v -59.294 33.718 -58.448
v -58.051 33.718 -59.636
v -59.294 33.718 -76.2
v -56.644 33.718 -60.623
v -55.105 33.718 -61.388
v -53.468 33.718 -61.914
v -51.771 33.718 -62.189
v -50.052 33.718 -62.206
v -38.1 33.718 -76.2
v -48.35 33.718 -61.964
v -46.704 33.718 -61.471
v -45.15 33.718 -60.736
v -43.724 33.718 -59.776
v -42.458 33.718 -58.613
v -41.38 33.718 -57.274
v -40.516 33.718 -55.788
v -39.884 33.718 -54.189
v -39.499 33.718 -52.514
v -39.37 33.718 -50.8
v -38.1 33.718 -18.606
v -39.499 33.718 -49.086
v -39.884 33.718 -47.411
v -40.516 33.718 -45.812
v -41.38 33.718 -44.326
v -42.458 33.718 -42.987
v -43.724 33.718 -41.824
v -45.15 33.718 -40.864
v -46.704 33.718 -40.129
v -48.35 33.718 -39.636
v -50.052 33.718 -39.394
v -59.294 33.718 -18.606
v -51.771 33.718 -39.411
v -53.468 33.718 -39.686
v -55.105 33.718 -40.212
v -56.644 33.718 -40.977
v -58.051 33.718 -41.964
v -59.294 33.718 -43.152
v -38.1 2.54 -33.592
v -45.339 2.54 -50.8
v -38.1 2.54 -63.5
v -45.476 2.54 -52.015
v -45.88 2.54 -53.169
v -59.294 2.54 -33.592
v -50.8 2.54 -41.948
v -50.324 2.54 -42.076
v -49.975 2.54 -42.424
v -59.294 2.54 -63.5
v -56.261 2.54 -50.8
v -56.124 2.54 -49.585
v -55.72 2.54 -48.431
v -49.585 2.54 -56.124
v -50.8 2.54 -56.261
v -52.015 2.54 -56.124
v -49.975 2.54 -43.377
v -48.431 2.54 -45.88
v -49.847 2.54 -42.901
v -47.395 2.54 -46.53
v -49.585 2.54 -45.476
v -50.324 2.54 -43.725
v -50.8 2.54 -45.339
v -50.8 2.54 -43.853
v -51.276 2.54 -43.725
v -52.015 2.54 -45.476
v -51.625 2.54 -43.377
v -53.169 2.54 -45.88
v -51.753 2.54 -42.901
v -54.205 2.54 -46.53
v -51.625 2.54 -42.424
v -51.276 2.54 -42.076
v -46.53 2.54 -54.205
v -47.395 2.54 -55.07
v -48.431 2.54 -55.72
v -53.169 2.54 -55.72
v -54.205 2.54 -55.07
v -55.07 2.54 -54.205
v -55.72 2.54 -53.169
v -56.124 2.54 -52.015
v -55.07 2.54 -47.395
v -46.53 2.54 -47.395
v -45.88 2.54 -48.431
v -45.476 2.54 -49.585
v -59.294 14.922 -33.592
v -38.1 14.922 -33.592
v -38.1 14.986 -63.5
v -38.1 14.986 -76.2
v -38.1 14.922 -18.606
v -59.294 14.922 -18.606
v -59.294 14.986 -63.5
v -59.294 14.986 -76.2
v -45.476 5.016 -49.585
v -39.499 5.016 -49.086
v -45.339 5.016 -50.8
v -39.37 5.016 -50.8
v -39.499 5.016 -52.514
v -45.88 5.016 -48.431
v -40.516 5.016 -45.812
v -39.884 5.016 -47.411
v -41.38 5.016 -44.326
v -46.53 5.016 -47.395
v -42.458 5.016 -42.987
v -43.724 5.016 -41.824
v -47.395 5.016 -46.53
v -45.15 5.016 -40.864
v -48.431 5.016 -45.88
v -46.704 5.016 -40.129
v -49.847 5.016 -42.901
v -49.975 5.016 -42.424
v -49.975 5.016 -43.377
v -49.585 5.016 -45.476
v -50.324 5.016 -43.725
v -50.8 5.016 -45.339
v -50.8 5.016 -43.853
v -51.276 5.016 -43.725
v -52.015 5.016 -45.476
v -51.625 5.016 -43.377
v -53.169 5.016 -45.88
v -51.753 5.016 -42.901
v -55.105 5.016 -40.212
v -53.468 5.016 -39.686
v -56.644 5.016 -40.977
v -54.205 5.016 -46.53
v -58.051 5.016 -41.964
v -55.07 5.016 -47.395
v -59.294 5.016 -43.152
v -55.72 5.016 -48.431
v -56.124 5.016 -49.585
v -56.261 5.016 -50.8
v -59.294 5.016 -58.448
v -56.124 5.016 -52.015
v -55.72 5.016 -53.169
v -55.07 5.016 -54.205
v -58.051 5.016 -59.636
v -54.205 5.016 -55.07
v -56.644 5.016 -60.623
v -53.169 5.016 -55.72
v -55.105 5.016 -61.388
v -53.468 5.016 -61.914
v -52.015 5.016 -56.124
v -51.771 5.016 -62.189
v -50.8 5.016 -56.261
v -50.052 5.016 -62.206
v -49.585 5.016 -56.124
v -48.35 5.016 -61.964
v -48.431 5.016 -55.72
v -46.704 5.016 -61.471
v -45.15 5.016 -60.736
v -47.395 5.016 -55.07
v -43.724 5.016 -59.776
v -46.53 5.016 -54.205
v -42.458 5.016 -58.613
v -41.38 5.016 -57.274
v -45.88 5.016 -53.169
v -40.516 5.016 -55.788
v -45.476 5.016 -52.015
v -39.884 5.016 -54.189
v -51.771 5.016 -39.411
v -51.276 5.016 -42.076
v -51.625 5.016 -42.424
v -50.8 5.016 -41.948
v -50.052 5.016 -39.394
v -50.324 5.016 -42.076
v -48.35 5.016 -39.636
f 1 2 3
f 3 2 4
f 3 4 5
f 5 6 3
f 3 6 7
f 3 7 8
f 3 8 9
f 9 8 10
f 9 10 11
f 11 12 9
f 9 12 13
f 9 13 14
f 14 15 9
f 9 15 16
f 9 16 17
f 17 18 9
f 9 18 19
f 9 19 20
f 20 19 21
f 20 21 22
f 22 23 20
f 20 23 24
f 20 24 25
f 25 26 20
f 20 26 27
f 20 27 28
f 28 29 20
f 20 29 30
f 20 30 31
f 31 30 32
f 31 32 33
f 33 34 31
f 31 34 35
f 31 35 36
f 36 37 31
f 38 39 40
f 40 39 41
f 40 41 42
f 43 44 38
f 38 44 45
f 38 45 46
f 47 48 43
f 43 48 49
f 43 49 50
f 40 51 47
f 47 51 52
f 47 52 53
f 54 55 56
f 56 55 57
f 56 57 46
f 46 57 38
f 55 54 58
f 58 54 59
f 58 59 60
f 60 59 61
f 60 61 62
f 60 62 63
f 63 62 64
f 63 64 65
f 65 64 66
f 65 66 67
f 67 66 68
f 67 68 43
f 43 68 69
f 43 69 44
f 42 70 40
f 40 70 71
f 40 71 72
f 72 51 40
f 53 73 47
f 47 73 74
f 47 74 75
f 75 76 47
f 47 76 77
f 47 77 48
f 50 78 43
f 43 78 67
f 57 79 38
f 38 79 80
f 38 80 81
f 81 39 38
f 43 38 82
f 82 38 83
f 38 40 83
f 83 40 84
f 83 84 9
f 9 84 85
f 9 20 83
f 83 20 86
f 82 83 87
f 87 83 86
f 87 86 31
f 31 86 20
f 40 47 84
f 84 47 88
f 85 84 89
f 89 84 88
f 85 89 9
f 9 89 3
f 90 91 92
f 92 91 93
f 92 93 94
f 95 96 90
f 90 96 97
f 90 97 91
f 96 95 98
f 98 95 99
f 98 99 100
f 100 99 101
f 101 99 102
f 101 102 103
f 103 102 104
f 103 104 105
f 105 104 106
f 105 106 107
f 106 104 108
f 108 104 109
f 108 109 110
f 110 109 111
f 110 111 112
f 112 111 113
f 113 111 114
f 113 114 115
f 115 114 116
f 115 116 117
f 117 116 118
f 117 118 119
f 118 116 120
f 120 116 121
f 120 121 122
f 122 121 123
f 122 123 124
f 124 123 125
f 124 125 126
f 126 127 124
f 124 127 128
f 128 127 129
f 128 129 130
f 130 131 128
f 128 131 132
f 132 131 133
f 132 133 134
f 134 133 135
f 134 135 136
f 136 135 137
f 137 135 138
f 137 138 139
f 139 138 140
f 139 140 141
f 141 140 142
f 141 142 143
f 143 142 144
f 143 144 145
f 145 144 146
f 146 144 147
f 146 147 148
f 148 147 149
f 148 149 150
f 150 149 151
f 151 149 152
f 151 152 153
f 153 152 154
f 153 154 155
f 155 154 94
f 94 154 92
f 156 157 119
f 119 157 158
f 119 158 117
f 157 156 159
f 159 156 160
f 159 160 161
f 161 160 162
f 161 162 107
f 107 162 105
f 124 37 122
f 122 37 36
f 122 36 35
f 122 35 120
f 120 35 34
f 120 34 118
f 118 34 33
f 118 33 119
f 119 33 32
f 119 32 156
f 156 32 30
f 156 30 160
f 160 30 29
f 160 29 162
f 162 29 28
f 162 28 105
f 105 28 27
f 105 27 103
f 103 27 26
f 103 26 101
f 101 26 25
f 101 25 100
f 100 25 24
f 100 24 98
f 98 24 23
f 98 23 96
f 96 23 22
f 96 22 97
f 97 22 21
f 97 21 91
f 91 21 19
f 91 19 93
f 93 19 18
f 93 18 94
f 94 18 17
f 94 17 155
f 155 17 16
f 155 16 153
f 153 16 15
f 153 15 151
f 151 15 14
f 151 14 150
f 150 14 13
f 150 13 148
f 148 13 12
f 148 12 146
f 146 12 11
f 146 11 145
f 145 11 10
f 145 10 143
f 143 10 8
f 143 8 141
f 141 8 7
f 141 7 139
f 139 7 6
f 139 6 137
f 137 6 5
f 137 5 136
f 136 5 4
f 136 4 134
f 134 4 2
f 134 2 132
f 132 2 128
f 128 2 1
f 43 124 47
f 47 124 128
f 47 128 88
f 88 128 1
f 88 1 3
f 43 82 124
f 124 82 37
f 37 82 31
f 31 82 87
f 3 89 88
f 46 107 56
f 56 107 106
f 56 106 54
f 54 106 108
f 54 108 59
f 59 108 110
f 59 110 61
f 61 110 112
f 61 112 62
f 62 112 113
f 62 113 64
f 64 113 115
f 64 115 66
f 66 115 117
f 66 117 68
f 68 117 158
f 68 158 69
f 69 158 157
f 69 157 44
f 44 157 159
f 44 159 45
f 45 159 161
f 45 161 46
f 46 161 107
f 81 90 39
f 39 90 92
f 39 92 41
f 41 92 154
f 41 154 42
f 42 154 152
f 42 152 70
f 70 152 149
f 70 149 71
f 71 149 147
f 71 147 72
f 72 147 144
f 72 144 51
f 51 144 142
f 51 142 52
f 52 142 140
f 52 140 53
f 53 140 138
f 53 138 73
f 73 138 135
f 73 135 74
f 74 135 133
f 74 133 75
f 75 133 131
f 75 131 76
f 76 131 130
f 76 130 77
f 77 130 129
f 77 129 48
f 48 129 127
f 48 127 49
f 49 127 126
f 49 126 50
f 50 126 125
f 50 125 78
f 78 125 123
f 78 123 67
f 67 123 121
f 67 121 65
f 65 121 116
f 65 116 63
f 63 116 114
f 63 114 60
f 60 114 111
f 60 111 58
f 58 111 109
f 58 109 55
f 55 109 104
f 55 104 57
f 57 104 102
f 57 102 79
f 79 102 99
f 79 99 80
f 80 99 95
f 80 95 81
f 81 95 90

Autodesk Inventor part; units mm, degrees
ref_plane "YZ Plane" through (0, 0, 0) normal (1, 0, 0) x (0, 1, 0)
ref_plane "XZ Plane" through (0, 0, 0) normal (0, 1, 0) x (-1, 0, 0)
ref_plane "XY Plane" through (0, 0, 0) normal (0, 0, 1) x (1, 0, 0)
sketch "Sketch1" plane through (0, 0, 0) normal (0, 1, 0) x (-1, 0, 0)
  line L0 (0, 0) -> (101.6, 0)
  line L1 (101.6, 0) -> (101.6, -101.6)
  line L2 (101.6, -101.6) -> (0, -101.6)
  line L3 (0, -101.6) -> (0, 0)
  circle A0 centre (50.8, -50.8) radius 5.461
  dimension "d0" = 101.6
  dimension "d1" = 101.6
  dimension "d2" = 10.922
extrude "Extrusion1" add sketch "Sketch1" along normal blind 4.7625
sketch "Sketch2" plane through (0, 4.7625, 0) normal (0, 1, 0) x (1, 0, 0)
  line L0 (-101.6, 0) -> (0, 0) projected
  line L1 (-76.2, 0) -> (0, 0)
  line L2 (0, 0) -> (0, 33.5923)
  line L3 (0, 33.5923) -> (-76.2, 33.5923)
  line L4 (-76.2, 33.5923) -> (-76.2, 0)
  line L5 (-101.6, 101.6) -> (-101.6, 0) projected
  line L6 (0, 0) -> (0, 101.6) projected
  line L7 (0, 101.6) -> (-101.6, 101.6) projected
  line L8 (-101.6, 76.2) -> (0, 76.2)
  line L9 (0, 76.2) -> (0, 101.6)
  line L10 (0, 101.6) -> (-101.6, 101.6)
  line L11 (-101.6, 101.6) -> (-101.6, 76.2)
  circle A0 centre (-50.8, 50.8) radius 5.461 projected
  line L12 (0, 76.2) -> (-38.1, 76.2)
  line L13 (-38.1, 76.2) -> (-38.1, 33.5923)
  line L14 (-38.1, 33.5923) -> (0, 33.5923)
  line L15 (0, 33.5923) -> (0, 76.2)
  point P0 (0, 76.2)
  dimension "d5" = 25.4
  dimension "d6" = 0
  dimension "d9" = 25.4
extrude "Extrusion2" cut sketch "Sketch2" against normal through all contours L4 L3 L2 L0 | L5 L7 L6 L8 | L8 L6 L3 L13
sketch "Sketch3" plane through (0, 4.7625, 0) normal (0, 1, 0) x (1, 0, 0)
  line L0 (-93.6015, 4.7625) -> (-89.5375, 4.7625)
  line L1 (-89.5375, 4.7625) -> (-89.5375, 71.4375)
  line L2 (-89.5375, 71.4375) -> (-93.6015, 71.4375)
  line L3 (-93.6015, 71.4375) -> (-93.6015, 4.7625)
  line L4 (-101.6, 0) -> (-76.2, 0) projected
  line L5 (-101.6, 76.2) -> (-101.6, 0) projected
  line L6 (-38.1, 76.2) -> (-101.6, 76.2) projected
  line L7 (-83.6041, 71.4375) -> (-83.6041, 4.7625)
  line L8 (-79.5401, 71.4375) -> (-83.6041, 71.4375)
  line L9 (-79.5401, 4.7625) -> (-79.5401, 71.4375)
  line L10 (-83.6041, 4.7625) -> (-79.5401, 4.7625)
  line L11 (-73.6067, 71.4375) -> (-73.6067, 4.7625)
  line L12 (-69.5427, 71.4375) -> (-73.6067, 71.4375)
  line L13 (-69.5427, 4.7625) -> (-69.5427, 71.4375)
  line L14 (-73.6067, 4.7625) -> (-69.5427, 4.7625)
  line L15 (-63.6092, 71.4375) -> (-63.6092, 4.7625)
  line L16 (-59.5452, 71.4375) -> (-63.6092, 71.4375)
  line L17 (-59.5452, 4.7625) -> (-59.5452, 71.4375)
  line L18 (-63.6092, 4.7625) -> (-59.5452, 4.7625)
  point P0 (0, 0)
  dimension "d10" = 4.064
  dimension "d11" = 4.7625
  dimension "d12" = 7.9985
  dimension "d14" = 4.7625
  dimension "d17" = 9.9974
extrude "Extrusion3" cut sketch "Sketch3" against normal through all
sketch "Sketch4" plane through (0, 4.7625, 0) normal (0, 1, 0) x (1, 0, 0)
  circle A0 centre (-50.8, 42.9006) radius 0.9525
  circle A1 centre (-50.8, 50.8) radius 5.461 projected
  point P0 (0, 0)
  dimension "d24" = 1.905
  dimension "d25" = 0
  dimension "d26" = 7.8994
extrude "Extrusion4" cut sketch "Sketch4" against normal through all contours A0
sketch "Sketch5" plane through (0, 4.7625, 0) normal (0, 1, 0) x (1, 0, 0)
  line L0 (-101.6, 0) -> (-76.2, 0) projected
  line L1 (-38.1, 76.2) -> (-101.6, 76.2) projected
  line L2 (-101.6, 0) -> (-59.2938, 0)
  line L3 (-59.2938, 0) -> (-59.2938, 76.2)
  line L4 (-59.2938, 76.2) -> (-101.6, 76.2)
  line L5 (-101.6, 76.2) -> (-101.6, 0)
  point P0 (0, 0)
extrude "Extrusion5" cut sketch "Sketch5" against normal through all
sketch "Sketch6" plane through (0, 4.7625, 0) normal (0, 1, 0) x (1, 0, 0)
  circle A0 centre (-50.8, 50.8) radius 5.461 projected
  line L0 (-59.2938, 76.2) -> (-59.2938, 33.5923) projected
  line L1 (-59.2938, 33.5923) -> (-38.1, 33.5923) projected
  line L2 (-38.1, 33.5923) -> (-38.1, 76.2) projected
  line L3 (-38.1, 76.2) -> (-59.2938, 76.2) projected
  circle A1 centre (-50.8, 42.9006) radius 0.9525 projected
  point P0 (0, 0)
extrude "Extrusion6" add sketch "Sketch6" along normal blind 15.24
sketch "Sketch7" plane through (0, 20.0025, 0) normal (0, 1, 0) x (1, 0, 0)
  circle A0 centre (-50.8, 50.8) radius 5.461 projected
  circle A1 centre (-50.8, 50.8) radius 11.43
  point P0 (0, 0)
  dimension "d33" = 22.86
extrude "Extrusion7" cut sketch "Sketch7" against normal blind 14.986
sketch "Sketch10" plane through (0, 0, 0) normal (0, -1, 0) x (1, 0, 0)
  line L0 (-59.2938, -76.2) -> (-38.1, -76.2) projected
  line L1 (-38.1, -76.2) -> (-38.1, -33.5923) projected
  line L2 (-59.2938, -76.2) -> (-38.1, -76.2)
  line L3 (-38.1, -76.2) -> (-38.1, -63.5)
  line L4 (-38.1, -63.5) -> (-59.2938, -63.5)
  line L5 (-59.2938, -63.5) -> (-59.2938, -76.2)
  point P0 (0, 0)
  dimension "d36" = 12.7
extrude "Extrusion8" cut sketch "Sketch10" against normal blind 14.986
sketch "Sketch11" plane through (-59.2938, 0, -33.5923) normal (0, 0, 1) x (1, 0, 0)
  line L0 (21.1938, 20.0025) -> (0, 20.0025) projected
  line L1 (21.1938, 20.0025) -> (21.1938, 14.986) projected
  line L2 (0, 20.0025) -> (21.1938, 20.0025)
  line L3 (21.1938, 20.0025) -> (21.1938, 14.9225)
  line L4 (21.1938, 14.9225) -> (0, 14.9225)
  line L5 (0, 14.9225) -> (0, 20.0025)
  point P0 (59.2938, 0)
  point P1 (21.1938, 14.986)
  dimension "d39" = 5.08
extrude "Extrusion9" add sketch "Sketch11" along normal blind 14.986
sketch "Sketch12" plane through (0, 0, 0) normal (0, -1, 0) x (1, 0, 0)
  line L0 (-59.2938, -63.5) -> (-38.1, -63.5) projected
  line L1 (-38.1, -63.5) -> (-38.1, -33.5923) projected
  line L2 (-38.1, -33.5923) -> (-59.2938, -33.5923) projected
  line L3 (-59.2938, -33.5923) -> (-59.2938, -63.5) projected
  circle A0 centre (-50.8, -42.9006) radius 0.9525 projected
  circle A1 centre (-50.8, -50.8) radius 5.461 projected
  point P0 (0, 0)
extrude "Extrusion10" cut sketch "Sketch12" against normal blind 2.54
sketch "Sketch13" plane through (0, 20.0025, 0) normal (0, 1, 0) x (1, 0, 0)
  arc A0 (-59.2938, 43.1515) -> (-59.2938, 58.4485) centre (-50.8, 50.8) ccw projected
  line L0 (-59.2938, 43.1515) -> (-59.2938, 18.6063) projected
  line L1 (-38.1, 18.6063) -> (-59.2938, 18.6063) projected
  line L2 (-38.1, 76.2) -> (-38.1, 18.6063) projected
  line L3 (-38.1, 76.2) -> (-59.2938, 76.2) projected
  line L4 (-59.2938, 76.2) -> (-59.2938, 58.4485) projected
  point P0 (0, 0)
extrude "Extrusion11" add sketch "Sketch13" along normal blind 13.716
properties part number "rotary encoder mount"
